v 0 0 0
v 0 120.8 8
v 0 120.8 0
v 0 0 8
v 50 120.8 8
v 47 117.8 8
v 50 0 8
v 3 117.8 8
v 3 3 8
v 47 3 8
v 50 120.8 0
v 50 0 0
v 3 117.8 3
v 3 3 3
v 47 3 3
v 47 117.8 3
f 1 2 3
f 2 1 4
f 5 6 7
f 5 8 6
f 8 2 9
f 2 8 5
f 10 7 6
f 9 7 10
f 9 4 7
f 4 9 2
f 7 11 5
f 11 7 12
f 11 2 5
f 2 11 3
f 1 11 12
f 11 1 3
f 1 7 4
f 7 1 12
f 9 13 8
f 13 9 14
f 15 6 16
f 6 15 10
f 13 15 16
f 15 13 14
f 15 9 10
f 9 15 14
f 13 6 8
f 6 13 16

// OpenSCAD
// Rubix44 ラックスライド防止ブロック
// MIDDLE ATLANTIC U1 1Uトレイ上で ROLAND Rubix44 が奥に滑るのを防ぐスペーサー
// トレイ奥面と Rubix44 背面の間に挟んで使用する

// ========================================
// パラメータ定義
// ========================================

// MIDDLE ATLANTIC U1 1Uトレイ寸法
tray_depth = 273.8;        // トレイ奥行き (10.78インチ)

// ROLAND Rubix44 寸法
rubix44_width = 310;       // Rubix44 幅
rubix44_depth = 165;       // Rubix44 奥行き
rubix44_height = 46;       // Rubix44 高さ

// ブロック設定
front_margin = 5;          // Rubix44 前面がトレイ前端から少し奥まる余白 (mm)
depth_extension = 17;      // 奥行きの追加分 (mm)
block_depth = tray_depth - rubix44_depth - front_margin + depth_extension;  // ~120.8mm

block_width = 50;          // ブロック幅 (mm)
block_height = 8;          // ブロック高さ (背面ケーブルに干渉しない高さ)
                           // Rubix44背面コネクタ(USB/TRS/MIDI)の下端は底面から約10-15mm
                           // ケーブルプラグの太さも考慮し安全マージンを確保
                           // 実測で余裕があれば 10-12mm に上げても可

// 軽量化用の肉抜き設定
enable_hollowing = true;   // 肉抜きを有効にする
wall_thickness = 3;        // 壁の厚さ (mm)

// ========================================
// メインブロック
// ========================================

module solid_block() {
    cube([block_width, block_depth, block_height]);
}

module hollowed_block() {
    difference() {
        solid_block();

        // 内部を肉抜き (上面が開口)
        if (enable_hollowing && block_height > wall_thickness * 2) {
            translate([wall_thickness, wall_thickness, wall_thickness])
                cube([
                    block_width - wall_thickness * 2,
                    block_depth - wall_thickness * 2,
                    block_height  // 上面を突き抜けて開口
                ]);
        }
    }
}

// ========================================
// レンダリング
// ========================================

if (enable_hollowing) {
    hollowed_block();
} else {
    solid_block();
}

// ========================================
// デバッグ用: Rubix44 ゴースト表示
// ========================================

show_rubix44_ghost = false;

if (show_rubix44_ghost) {
    // ブロックの手前側にRubix44を配置
    translate([(block_width - rubix44_width) / 2, -rubix44_depth, 0])
        %cube([rubix44_width, rubix44_depth, rubix44_height]);
}
